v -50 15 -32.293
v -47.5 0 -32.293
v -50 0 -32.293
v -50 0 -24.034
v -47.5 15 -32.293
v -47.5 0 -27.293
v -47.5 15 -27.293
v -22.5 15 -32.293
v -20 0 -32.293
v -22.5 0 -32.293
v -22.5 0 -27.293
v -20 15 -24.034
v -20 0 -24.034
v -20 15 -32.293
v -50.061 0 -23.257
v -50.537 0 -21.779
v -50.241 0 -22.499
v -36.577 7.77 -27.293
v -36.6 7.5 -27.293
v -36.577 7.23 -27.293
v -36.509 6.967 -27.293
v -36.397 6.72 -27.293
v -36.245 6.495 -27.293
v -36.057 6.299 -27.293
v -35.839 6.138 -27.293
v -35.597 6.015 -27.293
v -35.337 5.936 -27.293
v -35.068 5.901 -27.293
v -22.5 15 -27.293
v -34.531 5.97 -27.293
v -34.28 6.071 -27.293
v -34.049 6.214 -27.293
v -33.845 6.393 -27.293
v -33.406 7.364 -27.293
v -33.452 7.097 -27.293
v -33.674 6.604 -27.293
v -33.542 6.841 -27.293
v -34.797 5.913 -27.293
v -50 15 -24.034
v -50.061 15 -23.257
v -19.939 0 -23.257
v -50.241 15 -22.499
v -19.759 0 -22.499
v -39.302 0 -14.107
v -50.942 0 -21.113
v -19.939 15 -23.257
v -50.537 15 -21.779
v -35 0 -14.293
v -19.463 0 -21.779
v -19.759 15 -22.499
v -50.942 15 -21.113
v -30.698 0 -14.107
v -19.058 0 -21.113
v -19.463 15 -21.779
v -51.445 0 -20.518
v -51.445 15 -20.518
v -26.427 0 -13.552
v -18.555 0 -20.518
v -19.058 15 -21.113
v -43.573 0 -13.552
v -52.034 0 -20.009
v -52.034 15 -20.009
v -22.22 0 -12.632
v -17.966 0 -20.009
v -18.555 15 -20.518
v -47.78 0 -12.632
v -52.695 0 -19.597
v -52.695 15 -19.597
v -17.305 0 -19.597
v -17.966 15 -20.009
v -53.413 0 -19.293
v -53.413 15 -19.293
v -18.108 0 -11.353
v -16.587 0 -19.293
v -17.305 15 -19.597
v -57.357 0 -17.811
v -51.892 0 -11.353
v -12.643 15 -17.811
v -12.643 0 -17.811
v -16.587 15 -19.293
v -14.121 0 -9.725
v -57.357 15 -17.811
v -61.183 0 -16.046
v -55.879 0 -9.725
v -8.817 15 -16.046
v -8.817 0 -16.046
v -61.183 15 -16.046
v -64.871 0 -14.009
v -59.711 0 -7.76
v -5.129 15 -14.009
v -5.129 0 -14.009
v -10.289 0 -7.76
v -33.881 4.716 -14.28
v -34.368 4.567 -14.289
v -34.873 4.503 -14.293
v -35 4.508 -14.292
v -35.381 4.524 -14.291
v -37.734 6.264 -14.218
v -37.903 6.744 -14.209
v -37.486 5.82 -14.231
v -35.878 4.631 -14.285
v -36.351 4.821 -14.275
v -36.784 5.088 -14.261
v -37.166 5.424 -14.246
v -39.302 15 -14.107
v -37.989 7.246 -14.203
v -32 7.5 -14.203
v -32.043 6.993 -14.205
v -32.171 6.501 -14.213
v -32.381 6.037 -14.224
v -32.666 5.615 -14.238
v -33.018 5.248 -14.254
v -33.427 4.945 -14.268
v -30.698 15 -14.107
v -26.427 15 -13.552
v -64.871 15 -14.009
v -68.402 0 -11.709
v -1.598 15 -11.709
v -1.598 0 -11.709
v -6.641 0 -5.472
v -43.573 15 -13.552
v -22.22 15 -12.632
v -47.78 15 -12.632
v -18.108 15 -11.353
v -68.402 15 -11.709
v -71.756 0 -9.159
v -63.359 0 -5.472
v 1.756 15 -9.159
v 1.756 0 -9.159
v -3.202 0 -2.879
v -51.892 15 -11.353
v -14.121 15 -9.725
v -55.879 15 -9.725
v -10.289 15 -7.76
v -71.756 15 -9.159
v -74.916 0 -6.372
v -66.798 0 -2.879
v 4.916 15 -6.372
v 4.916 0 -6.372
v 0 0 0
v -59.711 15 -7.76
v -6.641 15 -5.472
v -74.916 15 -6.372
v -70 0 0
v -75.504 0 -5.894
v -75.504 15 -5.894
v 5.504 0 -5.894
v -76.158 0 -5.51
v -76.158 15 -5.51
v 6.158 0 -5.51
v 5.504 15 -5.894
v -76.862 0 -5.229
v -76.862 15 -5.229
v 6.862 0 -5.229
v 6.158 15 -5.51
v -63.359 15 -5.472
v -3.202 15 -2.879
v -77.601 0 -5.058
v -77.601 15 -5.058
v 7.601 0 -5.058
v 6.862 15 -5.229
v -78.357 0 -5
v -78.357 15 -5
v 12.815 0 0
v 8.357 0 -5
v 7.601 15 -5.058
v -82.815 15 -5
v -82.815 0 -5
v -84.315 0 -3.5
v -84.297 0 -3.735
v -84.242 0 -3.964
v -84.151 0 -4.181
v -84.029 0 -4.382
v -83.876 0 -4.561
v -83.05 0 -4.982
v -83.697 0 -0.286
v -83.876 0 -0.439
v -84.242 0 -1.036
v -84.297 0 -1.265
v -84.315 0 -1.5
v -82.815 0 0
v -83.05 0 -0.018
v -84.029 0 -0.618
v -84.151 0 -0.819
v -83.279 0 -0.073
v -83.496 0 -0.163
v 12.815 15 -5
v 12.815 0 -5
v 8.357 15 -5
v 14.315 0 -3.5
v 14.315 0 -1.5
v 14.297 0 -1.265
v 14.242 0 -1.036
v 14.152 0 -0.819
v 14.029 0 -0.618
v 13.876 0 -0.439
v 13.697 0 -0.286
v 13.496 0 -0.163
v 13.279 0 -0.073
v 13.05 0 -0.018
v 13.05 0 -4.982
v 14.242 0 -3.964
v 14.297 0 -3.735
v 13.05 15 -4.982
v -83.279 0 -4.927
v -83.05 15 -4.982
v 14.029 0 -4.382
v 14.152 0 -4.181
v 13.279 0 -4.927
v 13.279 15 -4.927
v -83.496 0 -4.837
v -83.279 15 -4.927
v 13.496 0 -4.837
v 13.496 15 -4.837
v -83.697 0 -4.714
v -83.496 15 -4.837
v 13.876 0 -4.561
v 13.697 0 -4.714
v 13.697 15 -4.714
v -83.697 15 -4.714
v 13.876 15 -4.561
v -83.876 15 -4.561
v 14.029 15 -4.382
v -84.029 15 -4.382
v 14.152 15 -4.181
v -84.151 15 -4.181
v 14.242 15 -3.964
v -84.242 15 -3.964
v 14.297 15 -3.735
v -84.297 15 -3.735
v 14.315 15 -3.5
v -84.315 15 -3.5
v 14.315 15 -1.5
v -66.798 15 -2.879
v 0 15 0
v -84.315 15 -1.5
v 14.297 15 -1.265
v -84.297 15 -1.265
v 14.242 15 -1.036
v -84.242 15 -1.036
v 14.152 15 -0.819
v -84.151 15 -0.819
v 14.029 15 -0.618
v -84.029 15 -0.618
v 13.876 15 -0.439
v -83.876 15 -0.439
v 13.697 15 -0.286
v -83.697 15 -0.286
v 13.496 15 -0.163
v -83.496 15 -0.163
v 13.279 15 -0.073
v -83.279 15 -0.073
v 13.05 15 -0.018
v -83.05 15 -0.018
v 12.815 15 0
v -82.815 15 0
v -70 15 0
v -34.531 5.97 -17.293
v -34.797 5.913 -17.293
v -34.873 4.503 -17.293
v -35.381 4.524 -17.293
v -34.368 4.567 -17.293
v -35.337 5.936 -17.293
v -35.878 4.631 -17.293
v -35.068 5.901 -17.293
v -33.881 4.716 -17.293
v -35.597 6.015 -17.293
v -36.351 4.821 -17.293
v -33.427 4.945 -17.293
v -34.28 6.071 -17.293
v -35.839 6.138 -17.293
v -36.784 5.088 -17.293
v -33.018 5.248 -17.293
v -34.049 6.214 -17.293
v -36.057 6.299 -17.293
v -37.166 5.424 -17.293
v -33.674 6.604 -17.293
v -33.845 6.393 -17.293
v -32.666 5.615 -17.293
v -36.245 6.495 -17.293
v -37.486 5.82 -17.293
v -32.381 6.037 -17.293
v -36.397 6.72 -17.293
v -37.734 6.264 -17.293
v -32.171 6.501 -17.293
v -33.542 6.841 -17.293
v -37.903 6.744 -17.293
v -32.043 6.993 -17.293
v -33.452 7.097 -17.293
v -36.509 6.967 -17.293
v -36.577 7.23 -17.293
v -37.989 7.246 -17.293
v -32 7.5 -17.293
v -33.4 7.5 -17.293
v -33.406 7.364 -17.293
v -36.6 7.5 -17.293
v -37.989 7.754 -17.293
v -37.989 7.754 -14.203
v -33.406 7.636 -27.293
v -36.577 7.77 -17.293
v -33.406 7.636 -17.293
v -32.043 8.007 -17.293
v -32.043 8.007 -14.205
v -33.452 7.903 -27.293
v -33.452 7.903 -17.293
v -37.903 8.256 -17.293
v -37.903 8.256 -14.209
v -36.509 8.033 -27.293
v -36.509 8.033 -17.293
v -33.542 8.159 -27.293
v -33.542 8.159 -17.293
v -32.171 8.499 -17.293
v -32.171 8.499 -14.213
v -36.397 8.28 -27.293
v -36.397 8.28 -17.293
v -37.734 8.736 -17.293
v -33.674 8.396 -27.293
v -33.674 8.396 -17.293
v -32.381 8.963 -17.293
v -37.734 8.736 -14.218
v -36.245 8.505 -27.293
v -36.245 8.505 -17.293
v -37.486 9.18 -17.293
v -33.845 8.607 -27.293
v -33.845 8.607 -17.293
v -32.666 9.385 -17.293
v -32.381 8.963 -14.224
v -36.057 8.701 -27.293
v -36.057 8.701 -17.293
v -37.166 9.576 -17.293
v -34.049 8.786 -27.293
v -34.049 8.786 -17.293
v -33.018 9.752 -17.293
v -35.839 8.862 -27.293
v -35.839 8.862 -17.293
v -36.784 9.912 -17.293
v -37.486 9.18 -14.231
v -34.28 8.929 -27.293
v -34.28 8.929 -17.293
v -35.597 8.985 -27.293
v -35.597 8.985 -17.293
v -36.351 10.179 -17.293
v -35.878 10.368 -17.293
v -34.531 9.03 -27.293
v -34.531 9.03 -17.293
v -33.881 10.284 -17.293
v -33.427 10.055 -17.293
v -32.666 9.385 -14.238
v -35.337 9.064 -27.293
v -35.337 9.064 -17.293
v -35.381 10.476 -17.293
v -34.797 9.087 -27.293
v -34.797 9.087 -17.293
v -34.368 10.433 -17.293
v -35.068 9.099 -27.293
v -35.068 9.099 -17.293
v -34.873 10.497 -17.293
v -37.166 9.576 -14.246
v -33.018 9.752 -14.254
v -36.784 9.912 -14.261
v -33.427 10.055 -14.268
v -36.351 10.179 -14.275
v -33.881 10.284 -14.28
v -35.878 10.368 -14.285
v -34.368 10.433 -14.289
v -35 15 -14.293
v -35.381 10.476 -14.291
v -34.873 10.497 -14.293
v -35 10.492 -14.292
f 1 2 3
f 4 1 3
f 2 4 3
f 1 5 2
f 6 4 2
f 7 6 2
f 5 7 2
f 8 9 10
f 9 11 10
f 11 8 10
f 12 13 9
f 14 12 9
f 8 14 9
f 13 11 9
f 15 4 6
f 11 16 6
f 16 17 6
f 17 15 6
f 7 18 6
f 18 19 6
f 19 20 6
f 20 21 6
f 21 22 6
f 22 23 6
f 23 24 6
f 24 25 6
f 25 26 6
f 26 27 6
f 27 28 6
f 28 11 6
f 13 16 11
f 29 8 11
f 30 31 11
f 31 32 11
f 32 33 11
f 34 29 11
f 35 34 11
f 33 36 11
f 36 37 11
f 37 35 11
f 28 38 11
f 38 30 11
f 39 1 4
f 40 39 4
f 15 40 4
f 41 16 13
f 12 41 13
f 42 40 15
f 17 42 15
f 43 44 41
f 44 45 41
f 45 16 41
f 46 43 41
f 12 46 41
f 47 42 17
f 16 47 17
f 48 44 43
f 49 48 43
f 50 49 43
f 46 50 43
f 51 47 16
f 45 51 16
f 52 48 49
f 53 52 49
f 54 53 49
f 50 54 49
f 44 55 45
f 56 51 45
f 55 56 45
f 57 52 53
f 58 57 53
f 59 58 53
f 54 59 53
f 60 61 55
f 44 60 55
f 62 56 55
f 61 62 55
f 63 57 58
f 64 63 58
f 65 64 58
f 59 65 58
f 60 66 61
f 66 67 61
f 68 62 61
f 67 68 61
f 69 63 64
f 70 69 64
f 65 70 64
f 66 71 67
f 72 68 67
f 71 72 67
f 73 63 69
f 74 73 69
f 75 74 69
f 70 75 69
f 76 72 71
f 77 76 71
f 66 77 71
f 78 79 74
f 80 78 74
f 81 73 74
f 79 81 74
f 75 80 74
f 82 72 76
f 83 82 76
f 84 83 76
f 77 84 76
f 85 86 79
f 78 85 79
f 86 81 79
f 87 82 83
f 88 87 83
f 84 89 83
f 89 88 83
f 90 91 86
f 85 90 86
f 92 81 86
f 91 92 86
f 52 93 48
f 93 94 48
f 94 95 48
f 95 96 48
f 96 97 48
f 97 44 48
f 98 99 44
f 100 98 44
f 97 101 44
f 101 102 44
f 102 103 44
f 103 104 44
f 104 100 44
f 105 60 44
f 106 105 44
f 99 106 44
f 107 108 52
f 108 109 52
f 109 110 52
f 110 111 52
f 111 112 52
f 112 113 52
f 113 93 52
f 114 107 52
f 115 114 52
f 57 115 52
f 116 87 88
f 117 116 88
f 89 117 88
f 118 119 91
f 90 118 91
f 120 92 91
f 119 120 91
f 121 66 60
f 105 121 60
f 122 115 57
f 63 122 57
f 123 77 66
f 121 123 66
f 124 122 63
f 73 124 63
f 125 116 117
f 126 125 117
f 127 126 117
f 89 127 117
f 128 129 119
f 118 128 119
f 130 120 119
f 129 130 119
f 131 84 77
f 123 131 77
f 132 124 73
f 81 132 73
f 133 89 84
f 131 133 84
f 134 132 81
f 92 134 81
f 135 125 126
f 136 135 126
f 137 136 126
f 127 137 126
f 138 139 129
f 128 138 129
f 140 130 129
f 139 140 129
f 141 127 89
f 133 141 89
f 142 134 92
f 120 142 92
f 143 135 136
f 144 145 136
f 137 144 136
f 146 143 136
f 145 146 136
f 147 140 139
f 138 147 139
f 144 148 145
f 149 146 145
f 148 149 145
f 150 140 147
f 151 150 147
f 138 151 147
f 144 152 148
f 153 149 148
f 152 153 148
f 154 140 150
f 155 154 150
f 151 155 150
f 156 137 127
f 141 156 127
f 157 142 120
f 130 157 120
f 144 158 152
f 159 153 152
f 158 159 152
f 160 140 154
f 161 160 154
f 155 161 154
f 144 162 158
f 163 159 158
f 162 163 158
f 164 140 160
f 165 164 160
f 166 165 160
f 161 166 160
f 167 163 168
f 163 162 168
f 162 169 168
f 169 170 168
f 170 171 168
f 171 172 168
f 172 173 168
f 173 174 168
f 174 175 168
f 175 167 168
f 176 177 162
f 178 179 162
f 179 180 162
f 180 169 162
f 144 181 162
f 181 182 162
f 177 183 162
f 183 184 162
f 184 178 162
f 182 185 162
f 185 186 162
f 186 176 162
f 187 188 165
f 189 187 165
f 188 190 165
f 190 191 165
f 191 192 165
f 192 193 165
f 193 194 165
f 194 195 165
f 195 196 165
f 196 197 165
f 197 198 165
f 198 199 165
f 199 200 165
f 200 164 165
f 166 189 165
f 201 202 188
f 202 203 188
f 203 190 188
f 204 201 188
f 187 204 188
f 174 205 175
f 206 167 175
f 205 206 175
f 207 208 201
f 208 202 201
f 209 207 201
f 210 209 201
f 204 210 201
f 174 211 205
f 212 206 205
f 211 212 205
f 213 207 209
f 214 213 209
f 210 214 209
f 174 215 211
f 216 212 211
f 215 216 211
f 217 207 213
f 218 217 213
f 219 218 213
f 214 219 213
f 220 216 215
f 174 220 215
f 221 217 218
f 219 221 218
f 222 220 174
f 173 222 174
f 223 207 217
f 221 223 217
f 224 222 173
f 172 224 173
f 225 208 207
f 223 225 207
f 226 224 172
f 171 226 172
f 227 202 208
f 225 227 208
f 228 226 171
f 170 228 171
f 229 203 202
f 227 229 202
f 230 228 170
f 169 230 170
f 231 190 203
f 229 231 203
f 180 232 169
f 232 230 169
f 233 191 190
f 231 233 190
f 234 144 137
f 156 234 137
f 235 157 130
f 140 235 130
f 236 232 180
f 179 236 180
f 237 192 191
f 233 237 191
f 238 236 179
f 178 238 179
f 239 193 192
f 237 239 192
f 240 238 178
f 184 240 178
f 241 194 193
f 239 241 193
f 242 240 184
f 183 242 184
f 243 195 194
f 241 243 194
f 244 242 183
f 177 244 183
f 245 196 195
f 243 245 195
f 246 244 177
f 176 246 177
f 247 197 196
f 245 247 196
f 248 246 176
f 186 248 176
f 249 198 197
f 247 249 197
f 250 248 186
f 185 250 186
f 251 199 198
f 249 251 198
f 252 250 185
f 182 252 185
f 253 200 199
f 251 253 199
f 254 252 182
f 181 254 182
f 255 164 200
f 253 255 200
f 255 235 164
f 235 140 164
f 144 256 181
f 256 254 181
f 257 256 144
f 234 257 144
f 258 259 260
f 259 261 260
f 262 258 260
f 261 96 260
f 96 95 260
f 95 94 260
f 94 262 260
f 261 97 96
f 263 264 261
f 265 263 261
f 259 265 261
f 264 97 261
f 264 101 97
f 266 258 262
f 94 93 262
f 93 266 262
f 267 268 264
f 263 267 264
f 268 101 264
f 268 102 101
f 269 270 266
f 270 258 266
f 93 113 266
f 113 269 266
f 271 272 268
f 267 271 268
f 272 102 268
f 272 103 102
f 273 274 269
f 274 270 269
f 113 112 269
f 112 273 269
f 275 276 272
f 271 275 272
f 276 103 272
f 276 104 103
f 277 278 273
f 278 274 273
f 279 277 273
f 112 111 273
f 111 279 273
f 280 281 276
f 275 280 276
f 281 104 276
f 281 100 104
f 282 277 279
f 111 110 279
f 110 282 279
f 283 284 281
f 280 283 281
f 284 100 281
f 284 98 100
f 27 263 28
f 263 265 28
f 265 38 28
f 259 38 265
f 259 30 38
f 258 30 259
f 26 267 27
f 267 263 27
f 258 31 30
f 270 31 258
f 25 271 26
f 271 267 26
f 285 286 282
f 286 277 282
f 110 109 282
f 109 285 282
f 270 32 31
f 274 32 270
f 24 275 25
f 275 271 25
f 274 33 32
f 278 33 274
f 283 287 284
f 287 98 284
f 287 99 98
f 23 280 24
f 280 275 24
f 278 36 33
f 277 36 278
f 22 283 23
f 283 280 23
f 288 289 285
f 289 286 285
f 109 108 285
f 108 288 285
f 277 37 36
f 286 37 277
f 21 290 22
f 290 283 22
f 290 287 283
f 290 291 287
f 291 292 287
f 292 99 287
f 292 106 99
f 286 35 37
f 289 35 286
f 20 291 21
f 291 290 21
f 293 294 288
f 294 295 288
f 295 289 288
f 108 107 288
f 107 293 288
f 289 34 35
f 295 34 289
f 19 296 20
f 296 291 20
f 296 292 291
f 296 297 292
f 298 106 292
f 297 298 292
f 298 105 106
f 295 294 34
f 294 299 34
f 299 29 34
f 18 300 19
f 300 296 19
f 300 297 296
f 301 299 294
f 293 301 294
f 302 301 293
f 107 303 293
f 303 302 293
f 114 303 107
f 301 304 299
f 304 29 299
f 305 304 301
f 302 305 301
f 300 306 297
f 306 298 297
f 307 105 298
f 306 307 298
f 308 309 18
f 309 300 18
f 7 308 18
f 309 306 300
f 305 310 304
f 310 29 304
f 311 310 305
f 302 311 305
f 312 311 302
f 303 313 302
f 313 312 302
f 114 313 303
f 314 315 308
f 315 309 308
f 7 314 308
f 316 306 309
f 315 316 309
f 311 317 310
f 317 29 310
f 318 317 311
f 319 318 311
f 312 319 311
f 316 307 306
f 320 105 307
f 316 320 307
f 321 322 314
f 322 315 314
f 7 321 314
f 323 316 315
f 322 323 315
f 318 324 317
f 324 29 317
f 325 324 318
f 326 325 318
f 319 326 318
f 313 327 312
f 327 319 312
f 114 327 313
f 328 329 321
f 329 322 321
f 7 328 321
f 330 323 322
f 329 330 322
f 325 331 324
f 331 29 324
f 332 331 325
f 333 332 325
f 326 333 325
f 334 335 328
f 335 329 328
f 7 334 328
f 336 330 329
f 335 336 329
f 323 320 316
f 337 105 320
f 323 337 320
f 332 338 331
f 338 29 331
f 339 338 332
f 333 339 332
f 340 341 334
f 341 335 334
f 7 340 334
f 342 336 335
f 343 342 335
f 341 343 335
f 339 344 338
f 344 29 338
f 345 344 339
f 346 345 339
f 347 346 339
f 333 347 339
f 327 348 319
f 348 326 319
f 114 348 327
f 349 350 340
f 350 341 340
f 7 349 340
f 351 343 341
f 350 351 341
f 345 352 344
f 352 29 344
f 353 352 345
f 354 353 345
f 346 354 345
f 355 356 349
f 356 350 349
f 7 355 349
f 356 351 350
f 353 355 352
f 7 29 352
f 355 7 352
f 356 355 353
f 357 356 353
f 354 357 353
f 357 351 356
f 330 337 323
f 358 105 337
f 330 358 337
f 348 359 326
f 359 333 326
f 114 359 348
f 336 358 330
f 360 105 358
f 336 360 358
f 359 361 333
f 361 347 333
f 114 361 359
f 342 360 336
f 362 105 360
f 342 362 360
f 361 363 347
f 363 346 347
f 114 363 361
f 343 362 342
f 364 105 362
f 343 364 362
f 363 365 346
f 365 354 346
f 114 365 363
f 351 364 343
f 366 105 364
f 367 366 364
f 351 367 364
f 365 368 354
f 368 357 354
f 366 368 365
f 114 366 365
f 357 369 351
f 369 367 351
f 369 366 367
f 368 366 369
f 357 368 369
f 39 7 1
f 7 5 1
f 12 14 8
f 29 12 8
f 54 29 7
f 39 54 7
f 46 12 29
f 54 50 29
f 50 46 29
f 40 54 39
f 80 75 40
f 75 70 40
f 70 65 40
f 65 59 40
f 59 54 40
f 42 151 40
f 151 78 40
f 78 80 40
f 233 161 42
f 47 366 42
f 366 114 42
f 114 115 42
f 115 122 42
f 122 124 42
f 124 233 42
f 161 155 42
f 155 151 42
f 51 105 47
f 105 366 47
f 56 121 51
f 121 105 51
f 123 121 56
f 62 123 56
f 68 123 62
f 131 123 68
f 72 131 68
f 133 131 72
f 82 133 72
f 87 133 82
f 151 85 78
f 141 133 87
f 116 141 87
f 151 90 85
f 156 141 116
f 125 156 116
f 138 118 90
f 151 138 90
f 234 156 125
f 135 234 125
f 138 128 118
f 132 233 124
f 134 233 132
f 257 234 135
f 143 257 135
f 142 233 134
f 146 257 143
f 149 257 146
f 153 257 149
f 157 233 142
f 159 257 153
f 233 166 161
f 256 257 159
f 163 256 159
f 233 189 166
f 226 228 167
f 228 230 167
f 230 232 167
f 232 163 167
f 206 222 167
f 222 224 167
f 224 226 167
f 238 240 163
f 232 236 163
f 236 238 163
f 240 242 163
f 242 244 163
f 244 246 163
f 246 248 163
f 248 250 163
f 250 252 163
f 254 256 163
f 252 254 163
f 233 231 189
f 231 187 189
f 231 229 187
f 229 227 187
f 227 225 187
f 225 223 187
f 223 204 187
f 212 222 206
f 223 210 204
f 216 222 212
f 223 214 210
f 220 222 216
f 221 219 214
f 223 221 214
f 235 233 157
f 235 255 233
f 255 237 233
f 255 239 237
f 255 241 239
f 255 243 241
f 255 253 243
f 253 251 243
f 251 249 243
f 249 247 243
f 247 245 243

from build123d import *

# Parameters (mm, degrees)
BOSS_EXTRUDE1_DEPTH = 15
FILLET1_R           = 5
FILLET2_R           = 1.5
SKETCH2_W           = 25
SKETCH2_H           = 5
CUT_EXTRUDE1_DEPTH  = 16
SKETCH3_R           = 1.6
CUT_EXTRUDE2_DEPTH  = 28.292857857
SKETCH4_R           = 3
CUT_EXTRUDE3_DEPTH  = 17.292858


with BuildPart() as part:
    # Sketch1 → Boss-Extrude1 (new body)
    with BuildSketch(Plane(origin=(0, 0, 0), x_dir=(1, 0, 0), z_dir=(0, 1, 0))):
        with BuildLine():
            ThreePointArc((-76.314992177, 5), (-35, 22.292857857), (6.314992177, 5))
            Line((6.314992177, 5), (14.314992177, 5))
            Line((14.314992177, 5), (14.314992177, 0))
            Line((14.314992177, 0), (0, 0))
            ThreePointArc((0, 0), (-35, 14.292857857), (-70, 0))
            Line((-70, 0), (-84.314992177, 0))
            Line((-84.314992177, 0), (-84.314992177, 5))
            Line((-84.314992177, 5), (-76.314992177, 5))
        make_face()
        with BuildLine():
            Line((-50, 32.292857857), (-50, 20.319637169))
            ThreePointArc((-50, 20.319637169), (-35, 22.292857857), (-20, 20.319637169))
            Line((-20, 20.319637169), (-20, 32.292857857))
            Line((-20, 32.292857857), (-50, 32.292857857))
        make_face()
    extrude(amount=BOSS_EXTRUDE1_DEPTH)

    # Fillet1
    fillet1_edges = [part.edges().sort_by_distance(p)[0] for p in [
        (-50, 7.5, -20.319637169),
        (-20, 7.5, -20.319637169),
        (6.314992177, 7.5, -5),
        (-76.314992177, 7.5, -5),
    ]]
    fillet(fillet1_edges, radius=FILLET1_R)

    # Fillet2
    fillet2_edges = [part.edges().sort_by_distance(p)[0] for p in [
        (14.314992177, 7.5, -5),
        (14.314992177, 7.5, 0),
        (-84.314992177, 7.5, 0),
        (-84.314992177, 7.5, -5),
    ]]
    fillet(fillet2_edges, radius=FILLET2_R)

    # Sketch2 → Cut-Extrude1 (cut, through all)
    with BuildSketch(Plane(origin=(0, 15, 0), x_dir=(1, 0, 0), z_dir=(0, 1, 0))):
        with Locations((-35, 29.792857857)):
            Rectangle(SKETCH2_W, SKETCH2_H)
    extrude(amount=-CUT_EXTRUDE1_DEPTH, mode=Mode.SUBTRACT)

    # Sketch3 → Cut-Extrude2 (cut, through all)
    with BuildSketch(Plane(origin=(0, 0, -27.292857857), x_dir=(-1, 0, 0), z_dir=(0, 0, -1))):
        with Locations((35, 7.5)):
            Circle(SKETCH3_R)
    extrude(amount=-CUT_EXTRUDE2_DEPTH, mode=Mode.SUBTRACT)

    # Sketch4 → Cut-Extrude3 (cut)
    with BuildSketch(Plane.XY):
        with Locations((-35, 7.5)):
            Circle(SKETCH4_R)
    extrude(amount=-CUT_EXTRUDE3_DEPTH, mode=Mode.SUBTRACT)


solid = part.part
